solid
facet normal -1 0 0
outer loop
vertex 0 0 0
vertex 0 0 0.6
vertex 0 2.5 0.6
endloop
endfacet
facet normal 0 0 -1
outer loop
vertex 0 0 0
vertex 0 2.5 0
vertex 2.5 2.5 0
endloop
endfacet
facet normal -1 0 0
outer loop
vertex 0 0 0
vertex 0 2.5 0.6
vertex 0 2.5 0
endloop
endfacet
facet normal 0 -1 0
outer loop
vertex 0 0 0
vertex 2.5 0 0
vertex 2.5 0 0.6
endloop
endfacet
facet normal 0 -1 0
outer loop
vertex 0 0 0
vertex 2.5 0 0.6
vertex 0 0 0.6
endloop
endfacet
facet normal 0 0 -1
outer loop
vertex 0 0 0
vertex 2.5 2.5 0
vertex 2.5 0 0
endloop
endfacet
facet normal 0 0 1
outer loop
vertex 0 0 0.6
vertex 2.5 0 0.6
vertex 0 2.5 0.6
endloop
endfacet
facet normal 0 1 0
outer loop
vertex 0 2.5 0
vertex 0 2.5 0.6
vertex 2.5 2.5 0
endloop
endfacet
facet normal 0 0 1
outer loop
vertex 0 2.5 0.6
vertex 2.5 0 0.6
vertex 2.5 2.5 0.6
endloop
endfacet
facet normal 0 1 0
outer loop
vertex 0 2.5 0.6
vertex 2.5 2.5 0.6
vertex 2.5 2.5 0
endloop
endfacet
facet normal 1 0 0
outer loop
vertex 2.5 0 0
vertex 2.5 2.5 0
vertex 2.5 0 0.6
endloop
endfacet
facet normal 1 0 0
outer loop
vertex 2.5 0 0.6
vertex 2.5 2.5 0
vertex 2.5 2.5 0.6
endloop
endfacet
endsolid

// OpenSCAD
/* Warning, this is a very basic generator with a lot of approximation 
input data : [UDFN, HNA, 2.5x2.5x0.6mm, 10, , B, C04-01161B]
generated by com.zoubworld.electronics.cad.model3d.Basic
Date : Sun Feb 15 10:50:49 CET 2026
*/

//body
color("black")
translate([0,0,0])
cube([2.5,2.5,0.6], center=false);
